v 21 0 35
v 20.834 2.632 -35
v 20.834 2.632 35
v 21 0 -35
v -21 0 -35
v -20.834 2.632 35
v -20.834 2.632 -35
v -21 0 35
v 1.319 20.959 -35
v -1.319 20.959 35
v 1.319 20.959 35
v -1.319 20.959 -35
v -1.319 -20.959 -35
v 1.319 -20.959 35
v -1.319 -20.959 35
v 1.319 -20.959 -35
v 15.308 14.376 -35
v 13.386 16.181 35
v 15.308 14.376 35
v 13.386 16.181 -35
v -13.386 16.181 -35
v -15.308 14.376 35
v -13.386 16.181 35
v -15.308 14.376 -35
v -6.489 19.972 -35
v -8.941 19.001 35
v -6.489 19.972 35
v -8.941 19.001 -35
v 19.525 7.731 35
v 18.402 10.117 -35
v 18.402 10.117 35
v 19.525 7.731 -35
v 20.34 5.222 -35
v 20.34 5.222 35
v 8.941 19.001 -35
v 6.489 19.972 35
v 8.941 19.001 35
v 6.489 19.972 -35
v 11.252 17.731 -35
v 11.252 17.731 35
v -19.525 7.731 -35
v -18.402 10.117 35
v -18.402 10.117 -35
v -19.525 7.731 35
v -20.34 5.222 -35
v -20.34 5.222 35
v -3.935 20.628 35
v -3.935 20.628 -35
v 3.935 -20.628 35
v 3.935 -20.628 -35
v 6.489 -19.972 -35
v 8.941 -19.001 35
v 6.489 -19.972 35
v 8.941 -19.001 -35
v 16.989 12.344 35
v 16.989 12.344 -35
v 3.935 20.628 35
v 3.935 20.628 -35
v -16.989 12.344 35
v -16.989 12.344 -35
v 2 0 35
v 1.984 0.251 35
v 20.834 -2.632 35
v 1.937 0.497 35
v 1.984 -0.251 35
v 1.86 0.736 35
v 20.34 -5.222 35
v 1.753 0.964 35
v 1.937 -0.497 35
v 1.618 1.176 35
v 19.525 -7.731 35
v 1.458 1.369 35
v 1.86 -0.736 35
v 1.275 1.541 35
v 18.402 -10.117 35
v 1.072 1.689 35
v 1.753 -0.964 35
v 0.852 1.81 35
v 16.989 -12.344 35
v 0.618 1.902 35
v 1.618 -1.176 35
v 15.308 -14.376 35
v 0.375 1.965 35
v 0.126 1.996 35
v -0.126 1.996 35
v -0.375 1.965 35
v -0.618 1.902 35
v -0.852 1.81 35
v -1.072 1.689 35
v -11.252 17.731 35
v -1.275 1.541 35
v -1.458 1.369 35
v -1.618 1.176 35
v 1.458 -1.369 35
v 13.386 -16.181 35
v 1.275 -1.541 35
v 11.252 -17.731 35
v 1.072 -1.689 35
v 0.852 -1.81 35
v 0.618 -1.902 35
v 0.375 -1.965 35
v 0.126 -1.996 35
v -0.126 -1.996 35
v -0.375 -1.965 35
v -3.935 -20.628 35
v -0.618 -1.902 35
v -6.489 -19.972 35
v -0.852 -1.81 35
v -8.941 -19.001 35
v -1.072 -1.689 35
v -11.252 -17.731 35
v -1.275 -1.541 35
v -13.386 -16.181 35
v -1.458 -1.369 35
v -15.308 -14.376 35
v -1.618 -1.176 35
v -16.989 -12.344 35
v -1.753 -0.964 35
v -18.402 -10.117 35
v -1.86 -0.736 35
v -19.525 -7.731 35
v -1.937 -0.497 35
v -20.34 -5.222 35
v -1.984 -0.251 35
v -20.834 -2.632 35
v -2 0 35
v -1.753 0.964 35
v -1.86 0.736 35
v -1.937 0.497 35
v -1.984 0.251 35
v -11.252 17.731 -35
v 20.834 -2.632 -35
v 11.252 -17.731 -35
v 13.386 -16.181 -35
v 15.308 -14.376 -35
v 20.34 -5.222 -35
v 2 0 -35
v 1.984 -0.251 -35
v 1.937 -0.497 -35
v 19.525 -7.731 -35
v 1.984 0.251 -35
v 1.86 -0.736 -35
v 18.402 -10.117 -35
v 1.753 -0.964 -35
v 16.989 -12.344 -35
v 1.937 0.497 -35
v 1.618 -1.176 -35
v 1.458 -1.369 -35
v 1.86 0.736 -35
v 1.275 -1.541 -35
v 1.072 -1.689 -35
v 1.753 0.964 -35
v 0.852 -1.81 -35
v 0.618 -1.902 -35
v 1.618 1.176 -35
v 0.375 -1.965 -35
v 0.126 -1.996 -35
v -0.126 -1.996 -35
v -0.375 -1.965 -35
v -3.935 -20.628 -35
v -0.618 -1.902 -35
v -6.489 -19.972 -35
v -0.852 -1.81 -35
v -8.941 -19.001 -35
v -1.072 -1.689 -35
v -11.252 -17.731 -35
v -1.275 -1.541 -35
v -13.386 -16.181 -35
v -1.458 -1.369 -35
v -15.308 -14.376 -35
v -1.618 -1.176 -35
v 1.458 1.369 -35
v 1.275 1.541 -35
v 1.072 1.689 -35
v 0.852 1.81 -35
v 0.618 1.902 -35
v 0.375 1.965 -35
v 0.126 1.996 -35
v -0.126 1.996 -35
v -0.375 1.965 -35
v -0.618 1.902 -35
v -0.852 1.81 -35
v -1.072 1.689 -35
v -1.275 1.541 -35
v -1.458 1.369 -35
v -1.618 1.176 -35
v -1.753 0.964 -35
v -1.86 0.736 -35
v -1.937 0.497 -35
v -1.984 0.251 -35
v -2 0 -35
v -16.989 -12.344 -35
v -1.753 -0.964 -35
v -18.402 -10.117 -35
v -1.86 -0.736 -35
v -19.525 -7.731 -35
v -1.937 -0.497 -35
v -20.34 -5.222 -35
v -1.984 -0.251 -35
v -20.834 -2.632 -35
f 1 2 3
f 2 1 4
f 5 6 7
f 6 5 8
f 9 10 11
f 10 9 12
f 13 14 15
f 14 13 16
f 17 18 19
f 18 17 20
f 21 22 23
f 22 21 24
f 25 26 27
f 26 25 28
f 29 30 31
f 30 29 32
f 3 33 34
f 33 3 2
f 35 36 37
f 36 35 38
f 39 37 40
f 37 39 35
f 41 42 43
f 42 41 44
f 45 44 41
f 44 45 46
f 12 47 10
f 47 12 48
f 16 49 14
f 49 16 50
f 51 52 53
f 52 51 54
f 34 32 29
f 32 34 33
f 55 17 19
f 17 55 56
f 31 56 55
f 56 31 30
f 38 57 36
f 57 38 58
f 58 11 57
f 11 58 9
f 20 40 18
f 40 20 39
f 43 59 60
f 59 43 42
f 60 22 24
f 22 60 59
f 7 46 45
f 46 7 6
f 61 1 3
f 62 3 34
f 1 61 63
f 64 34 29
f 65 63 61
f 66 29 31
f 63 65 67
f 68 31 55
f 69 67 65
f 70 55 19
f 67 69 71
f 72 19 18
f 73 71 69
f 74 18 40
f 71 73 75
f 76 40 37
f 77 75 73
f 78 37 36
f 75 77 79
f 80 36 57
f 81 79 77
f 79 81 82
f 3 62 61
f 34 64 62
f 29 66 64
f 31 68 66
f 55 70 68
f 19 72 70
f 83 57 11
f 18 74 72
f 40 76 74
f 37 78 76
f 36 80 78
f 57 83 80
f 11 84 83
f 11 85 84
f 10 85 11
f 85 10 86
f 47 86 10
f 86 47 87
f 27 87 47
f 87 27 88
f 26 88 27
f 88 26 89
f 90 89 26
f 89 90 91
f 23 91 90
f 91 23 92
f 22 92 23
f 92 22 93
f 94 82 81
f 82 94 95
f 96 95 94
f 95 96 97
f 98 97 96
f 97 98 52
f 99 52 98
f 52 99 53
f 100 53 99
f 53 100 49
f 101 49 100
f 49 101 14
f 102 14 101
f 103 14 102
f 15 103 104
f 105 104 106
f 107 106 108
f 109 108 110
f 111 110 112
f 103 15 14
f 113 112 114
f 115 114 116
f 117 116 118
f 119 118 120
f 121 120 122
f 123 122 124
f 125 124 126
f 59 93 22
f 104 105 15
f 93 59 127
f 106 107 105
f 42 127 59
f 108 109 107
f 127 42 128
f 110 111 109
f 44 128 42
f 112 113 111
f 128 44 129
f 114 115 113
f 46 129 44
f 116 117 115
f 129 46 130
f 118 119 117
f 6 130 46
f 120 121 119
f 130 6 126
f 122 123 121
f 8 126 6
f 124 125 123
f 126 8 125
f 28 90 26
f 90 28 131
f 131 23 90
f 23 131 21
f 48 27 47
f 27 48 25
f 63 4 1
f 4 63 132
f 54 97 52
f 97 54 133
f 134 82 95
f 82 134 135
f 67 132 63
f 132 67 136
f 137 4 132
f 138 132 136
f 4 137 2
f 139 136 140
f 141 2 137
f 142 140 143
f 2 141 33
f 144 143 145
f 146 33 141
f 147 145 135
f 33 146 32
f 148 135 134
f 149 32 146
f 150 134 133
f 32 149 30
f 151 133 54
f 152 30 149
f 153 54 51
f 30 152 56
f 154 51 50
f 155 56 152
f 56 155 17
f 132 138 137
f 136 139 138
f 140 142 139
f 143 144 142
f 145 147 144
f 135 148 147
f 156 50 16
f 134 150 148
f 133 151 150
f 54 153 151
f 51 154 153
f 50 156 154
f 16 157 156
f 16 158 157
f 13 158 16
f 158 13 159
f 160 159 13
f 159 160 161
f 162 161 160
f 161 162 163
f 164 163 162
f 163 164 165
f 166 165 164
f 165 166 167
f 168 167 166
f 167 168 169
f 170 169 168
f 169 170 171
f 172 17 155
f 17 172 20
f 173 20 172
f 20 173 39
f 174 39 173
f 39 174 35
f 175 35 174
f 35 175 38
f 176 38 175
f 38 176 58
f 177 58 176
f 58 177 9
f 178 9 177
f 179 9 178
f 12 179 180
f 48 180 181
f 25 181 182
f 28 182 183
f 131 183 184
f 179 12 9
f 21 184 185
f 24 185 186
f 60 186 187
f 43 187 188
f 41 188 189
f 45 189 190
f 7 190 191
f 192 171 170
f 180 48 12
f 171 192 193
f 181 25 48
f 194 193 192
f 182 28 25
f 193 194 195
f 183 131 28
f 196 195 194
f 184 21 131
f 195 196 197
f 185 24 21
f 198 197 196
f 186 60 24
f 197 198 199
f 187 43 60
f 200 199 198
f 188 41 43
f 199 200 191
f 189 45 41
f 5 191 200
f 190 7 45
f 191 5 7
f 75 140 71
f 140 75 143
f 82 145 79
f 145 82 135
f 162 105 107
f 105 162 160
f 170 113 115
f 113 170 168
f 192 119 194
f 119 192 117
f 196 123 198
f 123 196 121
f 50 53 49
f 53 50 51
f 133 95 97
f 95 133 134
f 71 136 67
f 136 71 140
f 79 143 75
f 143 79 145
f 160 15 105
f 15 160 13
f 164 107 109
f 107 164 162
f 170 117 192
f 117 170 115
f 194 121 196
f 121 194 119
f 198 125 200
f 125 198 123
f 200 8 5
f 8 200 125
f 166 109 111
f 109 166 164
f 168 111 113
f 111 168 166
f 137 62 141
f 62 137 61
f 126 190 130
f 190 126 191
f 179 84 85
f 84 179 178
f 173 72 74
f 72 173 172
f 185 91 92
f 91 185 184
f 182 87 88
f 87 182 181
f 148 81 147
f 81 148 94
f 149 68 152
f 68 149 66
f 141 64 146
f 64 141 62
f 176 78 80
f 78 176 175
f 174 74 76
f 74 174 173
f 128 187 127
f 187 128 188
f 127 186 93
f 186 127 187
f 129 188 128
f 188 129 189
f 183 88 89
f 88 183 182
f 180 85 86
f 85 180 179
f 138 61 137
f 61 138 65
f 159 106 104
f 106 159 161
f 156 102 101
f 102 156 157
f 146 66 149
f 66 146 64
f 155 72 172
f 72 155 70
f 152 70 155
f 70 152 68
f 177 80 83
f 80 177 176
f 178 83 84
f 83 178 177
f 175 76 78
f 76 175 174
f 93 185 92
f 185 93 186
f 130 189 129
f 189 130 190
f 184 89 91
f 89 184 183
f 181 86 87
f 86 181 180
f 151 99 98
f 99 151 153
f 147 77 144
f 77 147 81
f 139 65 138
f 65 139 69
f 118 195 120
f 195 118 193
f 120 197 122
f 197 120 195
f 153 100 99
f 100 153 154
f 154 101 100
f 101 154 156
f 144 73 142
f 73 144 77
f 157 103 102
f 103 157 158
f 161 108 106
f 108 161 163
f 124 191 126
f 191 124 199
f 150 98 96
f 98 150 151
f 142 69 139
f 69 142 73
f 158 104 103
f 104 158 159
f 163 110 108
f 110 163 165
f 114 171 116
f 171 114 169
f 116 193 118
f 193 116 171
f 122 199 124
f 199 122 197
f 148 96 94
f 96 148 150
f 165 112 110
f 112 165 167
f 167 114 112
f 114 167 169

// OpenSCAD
$fn = 50;


difference() {
	union() {
		translate(v = [0, 0, -35.0000000000]) {
			cylinder(h = 70, r = 21.0000000000);
		}
	}
	union() {
		translate(v = [0, 0, -100.0000000000]) {
			cylinder(h = 200, r = 2);
		}
	}
}
